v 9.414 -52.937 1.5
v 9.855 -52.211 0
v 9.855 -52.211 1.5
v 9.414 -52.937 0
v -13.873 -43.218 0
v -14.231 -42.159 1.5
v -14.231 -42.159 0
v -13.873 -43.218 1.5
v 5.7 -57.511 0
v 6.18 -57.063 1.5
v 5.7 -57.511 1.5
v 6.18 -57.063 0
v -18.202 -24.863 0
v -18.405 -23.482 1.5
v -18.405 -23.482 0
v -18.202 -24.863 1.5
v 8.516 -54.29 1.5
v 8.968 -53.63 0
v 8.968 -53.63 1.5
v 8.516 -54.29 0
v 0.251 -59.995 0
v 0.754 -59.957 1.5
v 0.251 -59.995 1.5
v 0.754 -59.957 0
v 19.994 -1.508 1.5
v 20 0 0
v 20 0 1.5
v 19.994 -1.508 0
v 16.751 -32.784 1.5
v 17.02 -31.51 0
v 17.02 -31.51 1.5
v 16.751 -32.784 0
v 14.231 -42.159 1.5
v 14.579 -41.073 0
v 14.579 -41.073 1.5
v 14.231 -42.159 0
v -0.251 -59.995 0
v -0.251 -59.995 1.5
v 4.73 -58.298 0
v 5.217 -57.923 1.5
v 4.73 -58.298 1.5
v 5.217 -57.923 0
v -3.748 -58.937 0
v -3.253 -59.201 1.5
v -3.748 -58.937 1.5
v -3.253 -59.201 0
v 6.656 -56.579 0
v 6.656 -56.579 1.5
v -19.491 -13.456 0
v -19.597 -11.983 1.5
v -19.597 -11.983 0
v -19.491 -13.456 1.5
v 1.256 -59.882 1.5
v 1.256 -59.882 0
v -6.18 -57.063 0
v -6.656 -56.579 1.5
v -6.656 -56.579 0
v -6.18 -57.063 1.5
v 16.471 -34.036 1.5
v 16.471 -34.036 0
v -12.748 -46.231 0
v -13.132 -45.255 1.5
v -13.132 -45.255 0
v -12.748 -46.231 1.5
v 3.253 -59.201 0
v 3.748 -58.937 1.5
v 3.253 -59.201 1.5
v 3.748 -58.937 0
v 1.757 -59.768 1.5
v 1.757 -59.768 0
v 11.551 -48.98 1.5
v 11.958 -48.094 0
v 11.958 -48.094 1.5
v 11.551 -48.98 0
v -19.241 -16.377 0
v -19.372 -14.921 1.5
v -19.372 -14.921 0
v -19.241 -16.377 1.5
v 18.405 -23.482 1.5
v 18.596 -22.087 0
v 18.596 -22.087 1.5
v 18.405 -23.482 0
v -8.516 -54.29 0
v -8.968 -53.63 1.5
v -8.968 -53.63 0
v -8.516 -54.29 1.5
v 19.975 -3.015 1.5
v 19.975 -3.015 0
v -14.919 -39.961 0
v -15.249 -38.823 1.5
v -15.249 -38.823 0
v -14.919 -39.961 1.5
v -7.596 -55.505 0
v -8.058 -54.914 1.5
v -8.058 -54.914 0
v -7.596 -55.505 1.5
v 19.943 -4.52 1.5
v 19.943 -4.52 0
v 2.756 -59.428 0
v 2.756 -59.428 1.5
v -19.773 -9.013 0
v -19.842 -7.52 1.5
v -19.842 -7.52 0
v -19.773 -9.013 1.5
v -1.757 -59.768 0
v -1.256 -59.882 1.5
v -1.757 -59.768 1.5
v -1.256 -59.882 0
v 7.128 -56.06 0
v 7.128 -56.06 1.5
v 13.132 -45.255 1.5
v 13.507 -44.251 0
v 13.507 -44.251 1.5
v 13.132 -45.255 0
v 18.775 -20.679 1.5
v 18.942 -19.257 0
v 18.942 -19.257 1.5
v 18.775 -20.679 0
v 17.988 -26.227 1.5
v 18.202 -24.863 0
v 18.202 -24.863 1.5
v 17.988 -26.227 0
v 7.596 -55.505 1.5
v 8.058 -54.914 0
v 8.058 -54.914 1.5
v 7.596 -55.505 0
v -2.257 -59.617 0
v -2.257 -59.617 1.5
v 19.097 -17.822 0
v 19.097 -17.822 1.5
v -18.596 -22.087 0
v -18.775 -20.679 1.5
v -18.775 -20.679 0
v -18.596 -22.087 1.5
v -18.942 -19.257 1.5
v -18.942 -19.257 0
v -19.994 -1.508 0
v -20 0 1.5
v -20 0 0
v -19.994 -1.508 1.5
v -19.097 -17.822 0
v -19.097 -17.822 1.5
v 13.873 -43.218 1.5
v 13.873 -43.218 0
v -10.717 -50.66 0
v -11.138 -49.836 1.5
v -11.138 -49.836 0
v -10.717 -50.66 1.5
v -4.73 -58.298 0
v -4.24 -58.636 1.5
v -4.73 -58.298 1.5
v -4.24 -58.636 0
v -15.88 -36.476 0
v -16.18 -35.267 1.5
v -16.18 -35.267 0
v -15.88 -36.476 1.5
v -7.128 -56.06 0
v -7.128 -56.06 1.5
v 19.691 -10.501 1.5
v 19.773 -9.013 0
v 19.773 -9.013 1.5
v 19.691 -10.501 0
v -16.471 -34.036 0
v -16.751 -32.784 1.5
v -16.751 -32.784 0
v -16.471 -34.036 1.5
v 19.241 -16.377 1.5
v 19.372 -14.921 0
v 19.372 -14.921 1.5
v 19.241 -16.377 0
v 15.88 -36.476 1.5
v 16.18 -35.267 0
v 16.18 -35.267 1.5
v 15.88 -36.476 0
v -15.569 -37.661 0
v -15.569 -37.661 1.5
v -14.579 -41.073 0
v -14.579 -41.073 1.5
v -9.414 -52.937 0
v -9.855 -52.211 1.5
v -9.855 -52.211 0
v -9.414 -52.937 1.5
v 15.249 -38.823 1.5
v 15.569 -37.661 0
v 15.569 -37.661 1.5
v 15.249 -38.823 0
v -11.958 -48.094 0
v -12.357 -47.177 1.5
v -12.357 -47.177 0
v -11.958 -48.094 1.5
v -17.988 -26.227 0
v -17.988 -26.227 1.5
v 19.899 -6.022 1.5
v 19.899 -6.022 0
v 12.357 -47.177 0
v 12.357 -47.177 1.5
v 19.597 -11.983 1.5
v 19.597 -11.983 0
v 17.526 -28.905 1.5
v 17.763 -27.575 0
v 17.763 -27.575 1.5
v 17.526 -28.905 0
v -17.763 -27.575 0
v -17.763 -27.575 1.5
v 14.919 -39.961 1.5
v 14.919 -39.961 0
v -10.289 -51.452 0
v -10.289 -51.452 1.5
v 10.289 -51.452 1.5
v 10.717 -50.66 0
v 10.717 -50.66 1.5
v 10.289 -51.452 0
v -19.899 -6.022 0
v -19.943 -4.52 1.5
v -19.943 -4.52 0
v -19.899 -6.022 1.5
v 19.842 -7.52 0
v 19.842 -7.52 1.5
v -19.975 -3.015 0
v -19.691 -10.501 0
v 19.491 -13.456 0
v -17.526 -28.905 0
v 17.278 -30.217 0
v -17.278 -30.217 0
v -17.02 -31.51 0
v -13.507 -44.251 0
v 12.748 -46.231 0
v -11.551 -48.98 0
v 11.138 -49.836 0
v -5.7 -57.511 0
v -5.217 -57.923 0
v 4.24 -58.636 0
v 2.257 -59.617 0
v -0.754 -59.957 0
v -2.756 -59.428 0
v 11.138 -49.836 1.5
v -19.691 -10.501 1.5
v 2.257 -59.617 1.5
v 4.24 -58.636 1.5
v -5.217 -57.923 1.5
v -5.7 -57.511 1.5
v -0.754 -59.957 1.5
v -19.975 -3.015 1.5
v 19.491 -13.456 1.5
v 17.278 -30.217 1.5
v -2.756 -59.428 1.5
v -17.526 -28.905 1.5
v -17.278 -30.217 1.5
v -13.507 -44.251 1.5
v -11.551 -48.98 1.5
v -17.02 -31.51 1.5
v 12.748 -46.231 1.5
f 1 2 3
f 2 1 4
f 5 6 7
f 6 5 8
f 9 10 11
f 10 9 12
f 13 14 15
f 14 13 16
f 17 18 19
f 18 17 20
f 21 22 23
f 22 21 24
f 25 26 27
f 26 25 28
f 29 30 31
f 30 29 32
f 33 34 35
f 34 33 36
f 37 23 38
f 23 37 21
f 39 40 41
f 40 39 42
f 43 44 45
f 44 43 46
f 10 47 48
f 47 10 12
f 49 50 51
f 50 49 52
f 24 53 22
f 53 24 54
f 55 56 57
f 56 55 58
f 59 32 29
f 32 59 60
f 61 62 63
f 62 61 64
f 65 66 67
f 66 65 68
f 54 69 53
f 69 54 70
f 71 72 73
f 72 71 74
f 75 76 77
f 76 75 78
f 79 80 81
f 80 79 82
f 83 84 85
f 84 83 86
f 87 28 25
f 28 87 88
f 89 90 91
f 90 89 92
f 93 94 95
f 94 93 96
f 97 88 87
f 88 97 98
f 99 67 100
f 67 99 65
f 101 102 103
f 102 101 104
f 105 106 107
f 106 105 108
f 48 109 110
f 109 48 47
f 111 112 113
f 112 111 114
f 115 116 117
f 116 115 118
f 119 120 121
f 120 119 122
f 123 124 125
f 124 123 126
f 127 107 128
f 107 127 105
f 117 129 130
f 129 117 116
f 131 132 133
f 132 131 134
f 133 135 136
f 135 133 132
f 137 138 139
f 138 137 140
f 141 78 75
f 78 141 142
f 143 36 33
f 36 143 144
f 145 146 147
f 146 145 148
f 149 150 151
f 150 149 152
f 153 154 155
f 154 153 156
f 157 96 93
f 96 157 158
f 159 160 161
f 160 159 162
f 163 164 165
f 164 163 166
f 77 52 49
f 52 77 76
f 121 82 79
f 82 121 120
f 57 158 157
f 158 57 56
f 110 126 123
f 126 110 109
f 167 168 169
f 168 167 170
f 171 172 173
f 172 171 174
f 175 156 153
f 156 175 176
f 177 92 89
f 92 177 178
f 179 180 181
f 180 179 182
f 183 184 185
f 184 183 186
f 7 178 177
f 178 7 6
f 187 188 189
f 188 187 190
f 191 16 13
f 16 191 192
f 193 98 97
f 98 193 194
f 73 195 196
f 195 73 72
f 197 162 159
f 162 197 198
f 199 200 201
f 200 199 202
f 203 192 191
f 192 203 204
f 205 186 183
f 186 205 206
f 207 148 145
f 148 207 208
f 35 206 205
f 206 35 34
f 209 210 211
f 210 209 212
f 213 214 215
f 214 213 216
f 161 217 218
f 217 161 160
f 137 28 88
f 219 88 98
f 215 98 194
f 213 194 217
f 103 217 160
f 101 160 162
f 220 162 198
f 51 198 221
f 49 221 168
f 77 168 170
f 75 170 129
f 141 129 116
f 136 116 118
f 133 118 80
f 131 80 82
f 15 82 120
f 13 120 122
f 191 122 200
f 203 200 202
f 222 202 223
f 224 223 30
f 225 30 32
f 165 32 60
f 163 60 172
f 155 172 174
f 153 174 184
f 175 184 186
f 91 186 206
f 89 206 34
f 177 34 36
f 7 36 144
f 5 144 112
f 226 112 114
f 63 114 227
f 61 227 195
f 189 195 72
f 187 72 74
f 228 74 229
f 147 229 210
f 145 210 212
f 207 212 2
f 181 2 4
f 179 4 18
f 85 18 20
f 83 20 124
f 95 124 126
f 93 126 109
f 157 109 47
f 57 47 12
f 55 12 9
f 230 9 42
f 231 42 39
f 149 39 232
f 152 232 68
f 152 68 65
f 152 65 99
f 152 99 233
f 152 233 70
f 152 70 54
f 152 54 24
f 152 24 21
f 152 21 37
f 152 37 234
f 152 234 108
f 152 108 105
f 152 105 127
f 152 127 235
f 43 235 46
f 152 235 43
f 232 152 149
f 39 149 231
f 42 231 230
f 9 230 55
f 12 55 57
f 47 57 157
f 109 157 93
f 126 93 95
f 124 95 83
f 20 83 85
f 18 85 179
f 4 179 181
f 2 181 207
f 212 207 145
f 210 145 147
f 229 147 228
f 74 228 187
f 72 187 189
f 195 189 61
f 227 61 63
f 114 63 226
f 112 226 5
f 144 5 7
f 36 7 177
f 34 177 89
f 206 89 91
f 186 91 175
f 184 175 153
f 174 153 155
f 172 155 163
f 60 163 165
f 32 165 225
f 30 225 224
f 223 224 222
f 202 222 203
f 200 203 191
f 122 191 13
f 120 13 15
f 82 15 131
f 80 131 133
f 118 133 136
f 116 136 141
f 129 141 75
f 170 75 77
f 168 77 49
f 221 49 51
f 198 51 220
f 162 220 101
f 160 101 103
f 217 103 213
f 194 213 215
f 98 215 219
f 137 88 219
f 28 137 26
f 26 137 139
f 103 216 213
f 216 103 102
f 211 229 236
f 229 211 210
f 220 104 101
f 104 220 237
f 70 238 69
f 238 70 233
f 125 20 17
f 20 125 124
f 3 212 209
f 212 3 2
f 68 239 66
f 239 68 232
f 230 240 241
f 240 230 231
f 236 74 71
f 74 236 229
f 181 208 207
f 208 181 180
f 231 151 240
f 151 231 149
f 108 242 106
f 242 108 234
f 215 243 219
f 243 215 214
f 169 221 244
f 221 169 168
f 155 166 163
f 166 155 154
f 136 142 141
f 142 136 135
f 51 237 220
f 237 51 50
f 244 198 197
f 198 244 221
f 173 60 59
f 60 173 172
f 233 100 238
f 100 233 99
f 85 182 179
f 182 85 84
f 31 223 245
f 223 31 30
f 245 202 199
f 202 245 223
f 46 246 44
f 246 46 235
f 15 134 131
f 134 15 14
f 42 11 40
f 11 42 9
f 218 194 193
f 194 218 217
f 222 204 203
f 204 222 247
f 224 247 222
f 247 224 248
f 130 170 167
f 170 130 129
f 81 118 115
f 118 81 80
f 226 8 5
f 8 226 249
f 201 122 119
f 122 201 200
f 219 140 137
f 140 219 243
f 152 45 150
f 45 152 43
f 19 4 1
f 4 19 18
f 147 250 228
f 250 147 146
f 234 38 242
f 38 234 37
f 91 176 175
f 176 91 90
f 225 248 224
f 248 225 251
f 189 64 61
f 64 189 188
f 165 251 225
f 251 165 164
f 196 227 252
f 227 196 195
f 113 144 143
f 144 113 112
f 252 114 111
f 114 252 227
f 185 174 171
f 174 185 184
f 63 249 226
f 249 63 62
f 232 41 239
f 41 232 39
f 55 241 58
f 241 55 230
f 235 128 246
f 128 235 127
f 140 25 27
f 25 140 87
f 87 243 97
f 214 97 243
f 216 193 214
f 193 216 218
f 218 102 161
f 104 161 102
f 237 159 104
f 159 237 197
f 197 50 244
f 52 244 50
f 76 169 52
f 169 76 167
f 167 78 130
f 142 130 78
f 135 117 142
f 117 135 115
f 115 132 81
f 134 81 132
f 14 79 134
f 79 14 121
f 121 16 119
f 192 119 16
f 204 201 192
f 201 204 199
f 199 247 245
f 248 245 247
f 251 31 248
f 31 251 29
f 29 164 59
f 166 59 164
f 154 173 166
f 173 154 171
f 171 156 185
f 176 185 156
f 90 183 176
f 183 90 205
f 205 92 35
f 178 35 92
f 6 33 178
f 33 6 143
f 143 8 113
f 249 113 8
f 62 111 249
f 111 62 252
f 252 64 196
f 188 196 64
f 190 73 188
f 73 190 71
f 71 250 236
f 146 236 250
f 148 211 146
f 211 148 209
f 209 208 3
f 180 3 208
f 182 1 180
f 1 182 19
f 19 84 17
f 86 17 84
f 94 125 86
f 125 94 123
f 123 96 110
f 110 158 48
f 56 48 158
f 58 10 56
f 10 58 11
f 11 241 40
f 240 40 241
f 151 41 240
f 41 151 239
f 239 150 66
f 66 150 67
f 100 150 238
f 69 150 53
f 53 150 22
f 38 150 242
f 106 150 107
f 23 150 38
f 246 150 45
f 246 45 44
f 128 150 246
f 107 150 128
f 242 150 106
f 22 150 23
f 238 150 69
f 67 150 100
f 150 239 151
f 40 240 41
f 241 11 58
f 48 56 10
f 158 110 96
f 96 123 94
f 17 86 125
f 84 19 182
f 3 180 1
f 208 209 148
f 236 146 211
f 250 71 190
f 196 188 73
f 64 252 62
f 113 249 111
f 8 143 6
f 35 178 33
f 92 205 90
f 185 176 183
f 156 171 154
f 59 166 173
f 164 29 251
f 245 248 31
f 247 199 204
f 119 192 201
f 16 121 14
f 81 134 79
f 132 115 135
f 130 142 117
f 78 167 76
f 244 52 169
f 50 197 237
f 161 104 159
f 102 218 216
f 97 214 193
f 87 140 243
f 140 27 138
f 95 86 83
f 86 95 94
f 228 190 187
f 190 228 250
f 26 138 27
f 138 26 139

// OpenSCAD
$fn = 250;
base = 40;
length = 60;
thickness = 1.5;

scale([base/2,length,1])
difference() {
    cylinder(h=thickness, r=1);
    translate([-25,0,-1])
    cube([50,50,50]);
}
